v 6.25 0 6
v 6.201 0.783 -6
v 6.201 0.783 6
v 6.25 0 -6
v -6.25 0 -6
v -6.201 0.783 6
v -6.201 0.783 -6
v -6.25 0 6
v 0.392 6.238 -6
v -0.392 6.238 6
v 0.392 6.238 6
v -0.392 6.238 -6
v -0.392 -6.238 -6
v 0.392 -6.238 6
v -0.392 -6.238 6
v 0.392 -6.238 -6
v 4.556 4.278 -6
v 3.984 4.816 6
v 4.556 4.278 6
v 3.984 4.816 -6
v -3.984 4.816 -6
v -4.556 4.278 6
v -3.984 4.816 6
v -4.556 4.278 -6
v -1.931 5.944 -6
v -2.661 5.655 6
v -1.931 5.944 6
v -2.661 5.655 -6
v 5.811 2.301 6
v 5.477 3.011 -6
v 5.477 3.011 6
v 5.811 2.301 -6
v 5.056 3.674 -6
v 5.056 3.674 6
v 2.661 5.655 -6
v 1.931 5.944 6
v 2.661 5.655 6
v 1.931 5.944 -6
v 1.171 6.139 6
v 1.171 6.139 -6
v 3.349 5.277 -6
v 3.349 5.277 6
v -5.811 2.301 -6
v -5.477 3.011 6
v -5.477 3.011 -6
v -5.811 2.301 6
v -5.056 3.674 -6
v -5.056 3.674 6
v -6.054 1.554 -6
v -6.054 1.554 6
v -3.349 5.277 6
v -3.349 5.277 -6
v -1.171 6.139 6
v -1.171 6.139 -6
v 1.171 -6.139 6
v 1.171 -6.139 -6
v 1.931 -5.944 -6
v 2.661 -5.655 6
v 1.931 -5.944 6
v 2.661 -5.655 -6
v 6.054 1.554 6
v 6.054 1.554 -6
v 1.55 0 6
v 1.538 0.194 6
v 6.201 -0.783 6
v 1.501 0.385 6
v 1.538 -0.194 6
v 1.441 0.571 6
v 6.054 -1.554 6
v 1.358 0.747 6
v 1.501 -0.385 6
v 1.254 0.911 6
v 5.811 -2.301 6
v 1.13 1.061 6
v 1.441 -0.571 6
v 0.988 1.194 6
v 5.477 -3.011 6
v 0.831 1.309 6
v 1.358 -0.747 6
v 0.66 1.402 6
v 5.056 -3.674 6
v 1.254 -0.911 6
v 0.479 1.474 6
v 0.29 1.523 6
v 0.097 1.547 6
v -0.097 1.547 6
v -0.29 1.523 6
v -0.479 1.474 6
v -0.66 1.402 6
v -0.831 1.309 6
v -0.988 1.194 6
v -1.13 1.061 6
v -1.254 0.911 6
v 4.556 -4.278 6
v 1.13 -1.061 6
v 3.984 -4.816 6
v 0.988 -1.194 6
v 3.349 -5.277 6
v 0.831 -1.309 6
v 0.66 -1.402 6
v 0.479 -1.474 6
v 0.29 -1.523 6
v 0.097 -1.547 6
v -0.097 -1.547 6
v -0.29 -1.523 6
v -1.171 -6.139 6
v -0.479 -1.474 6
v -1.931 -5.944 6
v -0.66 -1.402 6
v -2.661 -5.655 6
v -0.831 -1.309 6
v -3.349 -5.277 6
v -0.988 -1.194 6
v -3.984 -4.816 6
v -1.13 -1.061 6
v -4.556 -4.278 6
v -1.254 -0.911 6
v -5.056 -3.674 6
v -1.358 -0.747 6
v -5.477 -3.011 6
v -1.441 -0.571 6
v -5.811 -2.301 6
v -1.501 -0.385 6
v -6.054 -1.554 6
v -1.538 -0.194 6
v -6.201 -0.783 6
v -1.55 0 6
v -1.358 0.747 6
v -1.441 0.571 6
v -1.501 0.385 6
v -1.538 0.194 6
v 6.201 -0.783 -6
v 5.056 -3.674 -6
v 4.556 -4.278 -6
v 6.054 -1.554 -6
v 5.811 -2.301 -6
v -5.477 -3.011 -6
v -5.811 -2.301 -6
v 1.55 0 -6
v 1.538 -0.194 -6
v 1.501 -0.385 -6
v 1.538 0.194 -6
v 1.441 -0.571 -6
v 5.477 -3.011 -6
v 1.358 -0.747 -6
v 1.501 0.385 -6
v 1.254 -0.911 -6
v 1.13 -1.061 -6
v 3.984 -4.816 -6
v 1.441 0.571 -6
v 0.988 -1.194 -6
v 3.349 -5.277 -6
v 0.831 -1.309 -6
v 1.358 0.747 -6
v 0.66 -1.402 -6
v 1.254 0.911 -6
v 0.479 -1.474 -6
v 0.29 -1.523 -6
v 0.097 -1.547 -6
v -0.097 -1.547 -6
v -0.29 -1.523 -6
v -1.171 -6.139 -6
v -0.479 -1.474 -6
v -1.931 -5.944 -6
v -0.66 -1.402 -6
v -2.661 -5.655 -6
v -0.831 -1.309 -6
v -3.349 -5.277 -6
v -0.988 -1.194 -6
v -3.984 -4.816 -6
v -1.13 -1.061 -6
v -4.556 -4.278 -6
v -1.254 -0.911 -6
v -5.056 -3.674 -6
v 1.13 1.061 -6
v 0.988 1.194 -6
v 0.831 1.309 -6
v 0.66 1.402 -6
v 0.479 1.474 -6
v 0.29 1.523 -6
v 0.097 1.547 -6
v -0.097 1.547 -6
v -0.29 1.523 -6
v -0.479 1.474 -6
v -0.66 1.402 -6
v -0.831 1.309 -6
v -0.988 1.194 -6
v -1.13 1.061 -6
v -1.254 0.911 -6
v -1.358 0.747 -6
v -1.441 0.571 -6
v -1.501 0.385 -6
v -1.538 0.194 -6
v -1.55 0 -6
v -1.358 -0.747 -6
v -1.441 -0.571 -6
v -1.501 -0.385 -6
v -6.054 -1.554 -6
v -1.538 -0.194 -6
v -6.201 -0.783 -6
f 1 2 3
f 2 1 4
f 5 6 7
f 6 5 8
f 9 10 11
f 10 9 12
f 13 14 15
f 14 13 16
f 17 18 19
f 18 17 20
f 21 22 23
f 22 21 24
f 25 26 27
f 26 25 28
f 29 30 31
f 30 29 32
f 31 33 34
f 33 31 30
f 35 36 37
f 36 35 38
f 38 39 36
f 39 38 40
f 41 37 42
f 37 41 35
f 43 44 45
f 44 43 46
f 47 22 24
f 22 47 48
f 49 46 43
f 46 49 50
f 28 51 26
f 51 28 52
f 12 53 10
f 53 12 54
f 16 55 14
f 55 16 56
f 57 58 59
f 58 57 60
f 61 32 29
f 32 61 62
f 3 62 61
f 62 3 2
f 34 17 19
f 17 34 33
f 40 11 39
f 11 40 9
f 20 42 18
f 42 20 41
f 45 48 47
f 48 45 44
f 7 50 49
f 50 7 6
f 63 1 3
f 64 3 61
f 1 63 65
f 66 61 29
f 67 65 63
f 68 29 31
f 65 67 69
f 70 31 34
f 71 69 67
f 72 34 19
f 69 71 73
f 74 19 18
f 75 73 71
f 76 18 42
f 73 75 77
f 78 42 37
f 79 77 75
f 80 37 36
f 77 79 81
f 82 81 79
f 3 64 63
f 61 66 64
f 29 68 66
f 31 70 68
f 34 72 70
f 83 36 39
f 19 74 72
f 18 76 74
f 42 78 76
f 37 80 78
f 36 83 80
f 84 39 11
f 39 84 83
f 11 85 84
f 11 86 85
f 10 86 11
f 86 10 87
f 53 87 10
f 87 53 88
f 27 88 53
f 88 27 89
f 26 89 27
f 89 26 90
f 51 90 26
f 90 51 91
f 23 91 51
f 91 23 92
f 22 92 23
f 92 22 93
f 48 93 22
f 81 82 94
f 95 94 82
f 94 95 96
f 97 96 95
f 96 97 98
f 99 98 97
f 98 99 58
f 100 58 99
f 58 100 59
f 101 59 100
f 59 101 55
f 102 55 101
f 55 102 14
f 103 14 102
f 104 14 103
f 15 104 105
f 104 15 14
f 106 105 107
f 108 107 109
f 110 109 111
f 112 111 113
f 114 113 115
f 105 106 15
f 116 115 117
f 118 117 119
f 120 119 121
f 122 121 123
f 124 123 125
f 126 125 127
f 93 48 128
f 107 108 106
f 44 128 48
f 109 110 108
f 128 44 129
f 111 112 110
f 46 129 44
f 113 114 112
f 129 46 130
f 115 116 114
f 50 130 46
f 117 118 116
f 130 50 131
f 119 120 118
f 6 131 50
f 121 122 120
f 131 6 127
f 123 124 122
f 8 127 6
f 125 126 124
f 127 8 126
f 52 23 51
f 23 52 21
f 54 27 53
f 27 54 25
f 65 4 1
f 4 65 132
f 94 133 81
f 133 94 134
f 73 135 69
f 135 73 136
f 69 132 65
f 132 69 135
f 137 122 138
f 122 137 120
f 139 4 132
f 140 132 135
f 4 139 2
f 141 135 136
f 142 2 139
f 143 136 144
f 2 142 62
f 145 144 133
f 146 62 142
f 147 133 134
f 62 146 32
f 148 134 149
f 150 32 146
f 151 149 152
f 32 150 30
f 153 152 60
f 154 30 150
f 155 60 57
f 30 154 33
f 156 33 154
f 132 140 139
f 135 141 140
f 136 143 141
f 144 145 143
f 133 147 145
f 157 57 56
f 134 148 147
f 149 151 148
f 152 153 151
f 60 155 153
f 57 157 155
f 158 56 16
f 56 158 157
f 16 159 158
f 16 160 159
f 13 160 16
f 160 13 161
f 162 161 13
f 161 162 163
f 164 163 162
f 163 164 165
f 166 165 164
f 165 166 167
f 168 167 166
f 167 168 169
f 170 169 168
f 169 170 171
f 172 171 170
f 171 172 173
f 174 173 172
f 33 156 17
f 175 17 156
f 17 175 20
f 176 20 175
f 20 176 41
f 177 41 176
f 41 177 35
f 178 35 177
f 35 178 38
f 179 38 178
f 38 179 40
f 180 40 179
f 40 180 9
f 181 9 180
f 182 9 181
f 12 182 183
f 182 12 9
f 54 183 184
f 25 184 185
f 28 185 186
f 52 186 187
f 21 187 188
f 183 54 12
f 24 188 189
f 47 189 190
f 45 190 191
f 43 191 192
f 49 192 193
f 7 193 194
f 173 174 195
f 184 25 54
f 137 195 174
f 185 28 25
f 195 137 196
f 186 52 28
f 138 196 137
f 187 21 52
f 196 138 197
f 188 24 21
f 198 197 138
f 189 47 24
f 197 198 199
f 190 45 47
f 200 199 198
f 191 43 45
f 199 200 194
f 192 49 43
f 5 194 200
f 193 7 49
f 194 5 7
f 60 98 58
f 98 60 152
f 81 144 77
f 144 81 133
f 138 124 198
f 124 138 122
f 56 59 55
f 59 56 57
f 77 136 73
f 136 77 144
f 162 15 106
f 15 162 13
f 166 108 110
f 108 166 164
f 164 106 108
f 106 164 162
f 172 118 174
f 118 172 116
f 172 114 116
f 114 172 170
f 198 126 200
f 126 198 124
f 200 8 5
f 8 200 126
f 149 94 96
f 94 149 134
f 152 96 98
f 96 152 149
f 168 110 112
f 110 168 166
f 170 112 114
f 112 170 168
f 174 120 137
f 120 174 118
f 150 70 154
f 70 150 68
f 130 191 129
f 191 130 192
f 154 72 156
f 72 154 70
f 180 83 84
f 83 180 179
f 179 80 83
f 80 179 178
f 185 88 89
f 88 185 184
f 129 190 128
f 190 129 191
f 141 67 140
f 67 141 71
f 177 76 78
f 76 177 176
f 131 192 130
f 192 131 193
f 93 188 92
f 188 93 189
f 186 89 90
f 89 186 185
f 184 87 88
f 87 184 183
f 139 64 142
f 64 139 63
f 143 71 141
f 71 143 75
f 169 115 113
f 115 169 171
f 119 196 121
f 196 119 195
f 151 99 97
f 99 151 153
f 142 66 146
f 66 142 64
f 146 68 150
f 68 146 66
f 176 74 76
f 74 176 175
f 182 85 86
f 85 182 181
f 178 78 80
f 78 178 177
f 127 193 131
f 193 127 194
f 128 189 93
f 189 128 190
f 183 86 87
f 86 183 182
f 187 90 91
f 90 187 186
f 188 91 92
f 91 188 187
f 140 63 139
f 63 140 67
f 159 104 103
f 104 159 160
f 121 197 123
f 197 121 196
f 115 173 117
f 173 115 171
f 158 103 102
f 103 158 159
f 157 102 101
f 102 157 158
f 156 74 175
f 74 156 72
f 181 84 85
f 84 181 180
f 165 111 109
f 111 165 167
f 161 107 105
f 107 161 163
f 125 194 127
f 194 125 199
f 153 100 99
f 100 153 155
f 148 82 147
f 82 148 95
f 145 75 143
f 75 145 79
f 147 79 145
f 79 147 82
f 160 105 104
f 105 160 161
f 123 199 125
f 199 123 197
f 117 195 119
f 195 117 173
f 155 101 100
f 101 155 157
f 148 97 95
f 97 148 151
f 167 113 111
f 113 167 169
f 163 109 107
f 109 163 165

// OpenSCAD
$fn = 50;


difference() {
	union() {
		translate(v = [0, 0, -6.0000000000]) {
			cylinder(h = 12, r = 6.2500000000);
		}
	}
	union() {
		translate(v = [0, 0, -100.0000000000]) {
			cylinder(h = 200, r = 1.5500000000);
		}
	}
}
